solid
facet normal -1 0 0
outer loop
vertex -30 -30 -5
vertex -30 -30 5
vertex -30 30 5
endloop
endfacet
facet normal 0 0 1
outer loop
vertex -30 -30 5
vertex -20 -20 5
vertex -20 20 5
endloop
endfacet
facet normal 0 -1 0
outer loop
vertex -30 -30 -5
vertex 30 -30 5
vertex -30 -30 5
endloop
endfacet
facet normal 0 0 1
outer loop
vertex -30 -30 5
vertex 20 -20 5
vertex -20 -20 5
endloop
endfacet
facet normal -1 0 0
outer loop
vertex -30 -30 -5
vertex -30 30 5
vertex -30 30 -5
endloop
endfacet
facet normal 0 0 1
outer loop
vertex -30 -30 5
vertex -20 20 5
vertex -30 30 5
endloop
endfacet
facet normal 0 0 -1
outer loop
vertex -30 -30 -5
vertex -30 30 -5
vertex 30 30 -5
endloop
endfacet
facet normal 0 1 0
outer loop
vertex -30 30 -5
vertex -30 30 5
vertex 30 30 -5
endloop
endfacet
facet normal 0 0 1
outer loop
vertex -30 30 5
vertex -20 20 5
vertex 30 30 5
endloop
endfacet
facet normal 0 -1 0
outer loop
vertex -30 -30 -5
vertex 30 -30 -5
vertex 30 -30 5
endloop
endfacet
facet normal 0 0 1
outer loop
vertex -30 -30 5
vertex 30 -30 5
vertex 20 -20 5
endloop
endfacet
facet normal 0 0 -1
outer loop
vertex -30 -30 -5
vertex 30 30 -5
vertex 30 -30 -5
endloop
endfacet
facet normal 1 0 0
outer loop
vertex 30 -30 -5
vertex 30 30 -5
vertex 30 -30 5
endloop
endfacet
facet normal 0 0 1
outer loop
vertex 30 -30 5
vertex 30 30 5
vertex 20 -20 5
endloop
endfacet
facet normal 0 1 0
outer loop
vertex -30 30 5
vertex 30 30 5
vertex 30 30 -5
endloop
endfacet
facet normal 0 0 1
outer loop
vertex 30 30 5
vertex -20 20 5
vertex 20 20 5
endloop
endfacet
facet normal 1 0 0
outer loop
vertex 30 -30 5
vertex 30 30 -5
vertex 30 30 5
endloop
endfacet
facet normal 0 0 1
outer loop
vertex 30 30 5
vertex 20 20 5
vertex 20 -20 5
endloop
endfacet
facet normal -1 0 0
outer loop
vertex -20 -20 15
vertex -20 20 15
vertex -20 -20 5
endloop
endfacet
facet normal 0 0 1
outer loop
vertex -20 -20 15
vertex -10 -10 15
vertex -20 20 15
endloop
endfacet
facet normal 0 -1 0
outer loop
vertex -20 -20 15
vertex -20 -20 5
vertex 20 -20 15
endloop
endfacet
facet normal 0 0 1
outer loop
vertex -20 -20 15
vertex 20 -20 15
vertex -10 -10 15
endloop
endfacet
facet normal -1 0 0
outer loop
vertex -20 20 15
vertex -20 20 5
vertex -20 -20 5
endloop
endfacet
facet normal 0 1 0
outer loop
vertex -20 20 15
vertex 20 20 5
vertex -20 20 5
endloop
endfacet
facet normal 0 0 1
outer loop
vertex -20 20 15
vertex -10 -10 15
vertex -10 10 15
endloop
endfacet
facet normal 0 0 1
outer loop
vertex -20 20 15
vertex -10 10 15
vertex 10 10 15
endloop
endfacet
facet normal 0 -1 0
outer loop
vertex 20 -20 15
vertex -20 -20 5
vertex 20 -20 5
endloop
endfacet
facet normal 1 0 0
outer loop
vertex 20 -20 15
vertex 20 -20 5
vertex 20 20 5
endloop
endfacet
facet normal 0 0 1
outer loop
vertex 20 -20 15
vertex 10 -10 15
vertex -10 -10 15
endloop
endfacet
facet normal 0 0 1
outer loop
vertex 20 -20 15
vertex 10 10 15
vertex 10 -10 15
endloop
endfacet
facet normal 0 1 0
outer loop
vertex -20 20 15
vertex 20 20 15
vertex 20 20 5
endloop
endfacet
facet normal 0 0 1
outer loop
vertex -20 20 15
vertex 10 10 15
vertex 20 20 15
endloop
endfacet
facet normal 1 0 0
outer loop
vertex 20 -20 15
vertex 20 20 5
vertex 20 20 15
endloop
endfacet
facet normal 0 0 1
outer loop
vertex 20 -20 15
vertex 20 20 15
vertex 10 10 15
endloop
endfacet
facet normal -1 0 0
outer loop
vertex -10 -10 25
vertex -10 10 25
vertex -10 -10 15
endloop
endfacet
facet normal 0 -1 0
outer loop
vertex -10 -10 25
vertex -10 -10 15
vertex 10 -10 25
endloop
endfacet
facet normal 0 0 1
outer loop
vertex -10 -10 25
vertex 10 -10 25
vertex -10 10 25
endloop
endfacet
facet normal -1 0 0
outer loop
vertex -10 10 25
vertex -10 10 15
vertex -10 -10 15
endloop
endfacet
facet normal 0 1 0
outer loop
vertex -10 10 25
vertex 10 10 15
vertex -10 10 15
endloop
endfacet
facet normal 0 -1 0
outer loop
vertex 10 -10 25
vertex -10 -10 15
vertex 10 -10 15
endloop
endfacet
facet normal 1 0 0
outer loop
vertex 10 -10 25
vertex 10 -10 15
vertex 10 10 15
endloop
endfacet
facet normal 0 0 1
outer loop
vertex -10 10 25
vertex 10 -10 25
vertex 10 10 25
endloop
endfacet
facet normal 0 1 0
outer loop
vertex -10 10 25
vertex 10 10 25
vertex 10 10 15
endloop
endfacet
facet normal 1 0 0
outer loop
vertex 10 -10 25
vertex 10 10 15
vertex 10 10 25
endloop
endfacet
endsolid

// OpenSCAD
translate([0,0,0]) cube([60,60,10], center=true);
translate([0,0,10]) cube([40,40,10], center=true);
translate([0,0,20]) cube([20,20,10], center=true);
